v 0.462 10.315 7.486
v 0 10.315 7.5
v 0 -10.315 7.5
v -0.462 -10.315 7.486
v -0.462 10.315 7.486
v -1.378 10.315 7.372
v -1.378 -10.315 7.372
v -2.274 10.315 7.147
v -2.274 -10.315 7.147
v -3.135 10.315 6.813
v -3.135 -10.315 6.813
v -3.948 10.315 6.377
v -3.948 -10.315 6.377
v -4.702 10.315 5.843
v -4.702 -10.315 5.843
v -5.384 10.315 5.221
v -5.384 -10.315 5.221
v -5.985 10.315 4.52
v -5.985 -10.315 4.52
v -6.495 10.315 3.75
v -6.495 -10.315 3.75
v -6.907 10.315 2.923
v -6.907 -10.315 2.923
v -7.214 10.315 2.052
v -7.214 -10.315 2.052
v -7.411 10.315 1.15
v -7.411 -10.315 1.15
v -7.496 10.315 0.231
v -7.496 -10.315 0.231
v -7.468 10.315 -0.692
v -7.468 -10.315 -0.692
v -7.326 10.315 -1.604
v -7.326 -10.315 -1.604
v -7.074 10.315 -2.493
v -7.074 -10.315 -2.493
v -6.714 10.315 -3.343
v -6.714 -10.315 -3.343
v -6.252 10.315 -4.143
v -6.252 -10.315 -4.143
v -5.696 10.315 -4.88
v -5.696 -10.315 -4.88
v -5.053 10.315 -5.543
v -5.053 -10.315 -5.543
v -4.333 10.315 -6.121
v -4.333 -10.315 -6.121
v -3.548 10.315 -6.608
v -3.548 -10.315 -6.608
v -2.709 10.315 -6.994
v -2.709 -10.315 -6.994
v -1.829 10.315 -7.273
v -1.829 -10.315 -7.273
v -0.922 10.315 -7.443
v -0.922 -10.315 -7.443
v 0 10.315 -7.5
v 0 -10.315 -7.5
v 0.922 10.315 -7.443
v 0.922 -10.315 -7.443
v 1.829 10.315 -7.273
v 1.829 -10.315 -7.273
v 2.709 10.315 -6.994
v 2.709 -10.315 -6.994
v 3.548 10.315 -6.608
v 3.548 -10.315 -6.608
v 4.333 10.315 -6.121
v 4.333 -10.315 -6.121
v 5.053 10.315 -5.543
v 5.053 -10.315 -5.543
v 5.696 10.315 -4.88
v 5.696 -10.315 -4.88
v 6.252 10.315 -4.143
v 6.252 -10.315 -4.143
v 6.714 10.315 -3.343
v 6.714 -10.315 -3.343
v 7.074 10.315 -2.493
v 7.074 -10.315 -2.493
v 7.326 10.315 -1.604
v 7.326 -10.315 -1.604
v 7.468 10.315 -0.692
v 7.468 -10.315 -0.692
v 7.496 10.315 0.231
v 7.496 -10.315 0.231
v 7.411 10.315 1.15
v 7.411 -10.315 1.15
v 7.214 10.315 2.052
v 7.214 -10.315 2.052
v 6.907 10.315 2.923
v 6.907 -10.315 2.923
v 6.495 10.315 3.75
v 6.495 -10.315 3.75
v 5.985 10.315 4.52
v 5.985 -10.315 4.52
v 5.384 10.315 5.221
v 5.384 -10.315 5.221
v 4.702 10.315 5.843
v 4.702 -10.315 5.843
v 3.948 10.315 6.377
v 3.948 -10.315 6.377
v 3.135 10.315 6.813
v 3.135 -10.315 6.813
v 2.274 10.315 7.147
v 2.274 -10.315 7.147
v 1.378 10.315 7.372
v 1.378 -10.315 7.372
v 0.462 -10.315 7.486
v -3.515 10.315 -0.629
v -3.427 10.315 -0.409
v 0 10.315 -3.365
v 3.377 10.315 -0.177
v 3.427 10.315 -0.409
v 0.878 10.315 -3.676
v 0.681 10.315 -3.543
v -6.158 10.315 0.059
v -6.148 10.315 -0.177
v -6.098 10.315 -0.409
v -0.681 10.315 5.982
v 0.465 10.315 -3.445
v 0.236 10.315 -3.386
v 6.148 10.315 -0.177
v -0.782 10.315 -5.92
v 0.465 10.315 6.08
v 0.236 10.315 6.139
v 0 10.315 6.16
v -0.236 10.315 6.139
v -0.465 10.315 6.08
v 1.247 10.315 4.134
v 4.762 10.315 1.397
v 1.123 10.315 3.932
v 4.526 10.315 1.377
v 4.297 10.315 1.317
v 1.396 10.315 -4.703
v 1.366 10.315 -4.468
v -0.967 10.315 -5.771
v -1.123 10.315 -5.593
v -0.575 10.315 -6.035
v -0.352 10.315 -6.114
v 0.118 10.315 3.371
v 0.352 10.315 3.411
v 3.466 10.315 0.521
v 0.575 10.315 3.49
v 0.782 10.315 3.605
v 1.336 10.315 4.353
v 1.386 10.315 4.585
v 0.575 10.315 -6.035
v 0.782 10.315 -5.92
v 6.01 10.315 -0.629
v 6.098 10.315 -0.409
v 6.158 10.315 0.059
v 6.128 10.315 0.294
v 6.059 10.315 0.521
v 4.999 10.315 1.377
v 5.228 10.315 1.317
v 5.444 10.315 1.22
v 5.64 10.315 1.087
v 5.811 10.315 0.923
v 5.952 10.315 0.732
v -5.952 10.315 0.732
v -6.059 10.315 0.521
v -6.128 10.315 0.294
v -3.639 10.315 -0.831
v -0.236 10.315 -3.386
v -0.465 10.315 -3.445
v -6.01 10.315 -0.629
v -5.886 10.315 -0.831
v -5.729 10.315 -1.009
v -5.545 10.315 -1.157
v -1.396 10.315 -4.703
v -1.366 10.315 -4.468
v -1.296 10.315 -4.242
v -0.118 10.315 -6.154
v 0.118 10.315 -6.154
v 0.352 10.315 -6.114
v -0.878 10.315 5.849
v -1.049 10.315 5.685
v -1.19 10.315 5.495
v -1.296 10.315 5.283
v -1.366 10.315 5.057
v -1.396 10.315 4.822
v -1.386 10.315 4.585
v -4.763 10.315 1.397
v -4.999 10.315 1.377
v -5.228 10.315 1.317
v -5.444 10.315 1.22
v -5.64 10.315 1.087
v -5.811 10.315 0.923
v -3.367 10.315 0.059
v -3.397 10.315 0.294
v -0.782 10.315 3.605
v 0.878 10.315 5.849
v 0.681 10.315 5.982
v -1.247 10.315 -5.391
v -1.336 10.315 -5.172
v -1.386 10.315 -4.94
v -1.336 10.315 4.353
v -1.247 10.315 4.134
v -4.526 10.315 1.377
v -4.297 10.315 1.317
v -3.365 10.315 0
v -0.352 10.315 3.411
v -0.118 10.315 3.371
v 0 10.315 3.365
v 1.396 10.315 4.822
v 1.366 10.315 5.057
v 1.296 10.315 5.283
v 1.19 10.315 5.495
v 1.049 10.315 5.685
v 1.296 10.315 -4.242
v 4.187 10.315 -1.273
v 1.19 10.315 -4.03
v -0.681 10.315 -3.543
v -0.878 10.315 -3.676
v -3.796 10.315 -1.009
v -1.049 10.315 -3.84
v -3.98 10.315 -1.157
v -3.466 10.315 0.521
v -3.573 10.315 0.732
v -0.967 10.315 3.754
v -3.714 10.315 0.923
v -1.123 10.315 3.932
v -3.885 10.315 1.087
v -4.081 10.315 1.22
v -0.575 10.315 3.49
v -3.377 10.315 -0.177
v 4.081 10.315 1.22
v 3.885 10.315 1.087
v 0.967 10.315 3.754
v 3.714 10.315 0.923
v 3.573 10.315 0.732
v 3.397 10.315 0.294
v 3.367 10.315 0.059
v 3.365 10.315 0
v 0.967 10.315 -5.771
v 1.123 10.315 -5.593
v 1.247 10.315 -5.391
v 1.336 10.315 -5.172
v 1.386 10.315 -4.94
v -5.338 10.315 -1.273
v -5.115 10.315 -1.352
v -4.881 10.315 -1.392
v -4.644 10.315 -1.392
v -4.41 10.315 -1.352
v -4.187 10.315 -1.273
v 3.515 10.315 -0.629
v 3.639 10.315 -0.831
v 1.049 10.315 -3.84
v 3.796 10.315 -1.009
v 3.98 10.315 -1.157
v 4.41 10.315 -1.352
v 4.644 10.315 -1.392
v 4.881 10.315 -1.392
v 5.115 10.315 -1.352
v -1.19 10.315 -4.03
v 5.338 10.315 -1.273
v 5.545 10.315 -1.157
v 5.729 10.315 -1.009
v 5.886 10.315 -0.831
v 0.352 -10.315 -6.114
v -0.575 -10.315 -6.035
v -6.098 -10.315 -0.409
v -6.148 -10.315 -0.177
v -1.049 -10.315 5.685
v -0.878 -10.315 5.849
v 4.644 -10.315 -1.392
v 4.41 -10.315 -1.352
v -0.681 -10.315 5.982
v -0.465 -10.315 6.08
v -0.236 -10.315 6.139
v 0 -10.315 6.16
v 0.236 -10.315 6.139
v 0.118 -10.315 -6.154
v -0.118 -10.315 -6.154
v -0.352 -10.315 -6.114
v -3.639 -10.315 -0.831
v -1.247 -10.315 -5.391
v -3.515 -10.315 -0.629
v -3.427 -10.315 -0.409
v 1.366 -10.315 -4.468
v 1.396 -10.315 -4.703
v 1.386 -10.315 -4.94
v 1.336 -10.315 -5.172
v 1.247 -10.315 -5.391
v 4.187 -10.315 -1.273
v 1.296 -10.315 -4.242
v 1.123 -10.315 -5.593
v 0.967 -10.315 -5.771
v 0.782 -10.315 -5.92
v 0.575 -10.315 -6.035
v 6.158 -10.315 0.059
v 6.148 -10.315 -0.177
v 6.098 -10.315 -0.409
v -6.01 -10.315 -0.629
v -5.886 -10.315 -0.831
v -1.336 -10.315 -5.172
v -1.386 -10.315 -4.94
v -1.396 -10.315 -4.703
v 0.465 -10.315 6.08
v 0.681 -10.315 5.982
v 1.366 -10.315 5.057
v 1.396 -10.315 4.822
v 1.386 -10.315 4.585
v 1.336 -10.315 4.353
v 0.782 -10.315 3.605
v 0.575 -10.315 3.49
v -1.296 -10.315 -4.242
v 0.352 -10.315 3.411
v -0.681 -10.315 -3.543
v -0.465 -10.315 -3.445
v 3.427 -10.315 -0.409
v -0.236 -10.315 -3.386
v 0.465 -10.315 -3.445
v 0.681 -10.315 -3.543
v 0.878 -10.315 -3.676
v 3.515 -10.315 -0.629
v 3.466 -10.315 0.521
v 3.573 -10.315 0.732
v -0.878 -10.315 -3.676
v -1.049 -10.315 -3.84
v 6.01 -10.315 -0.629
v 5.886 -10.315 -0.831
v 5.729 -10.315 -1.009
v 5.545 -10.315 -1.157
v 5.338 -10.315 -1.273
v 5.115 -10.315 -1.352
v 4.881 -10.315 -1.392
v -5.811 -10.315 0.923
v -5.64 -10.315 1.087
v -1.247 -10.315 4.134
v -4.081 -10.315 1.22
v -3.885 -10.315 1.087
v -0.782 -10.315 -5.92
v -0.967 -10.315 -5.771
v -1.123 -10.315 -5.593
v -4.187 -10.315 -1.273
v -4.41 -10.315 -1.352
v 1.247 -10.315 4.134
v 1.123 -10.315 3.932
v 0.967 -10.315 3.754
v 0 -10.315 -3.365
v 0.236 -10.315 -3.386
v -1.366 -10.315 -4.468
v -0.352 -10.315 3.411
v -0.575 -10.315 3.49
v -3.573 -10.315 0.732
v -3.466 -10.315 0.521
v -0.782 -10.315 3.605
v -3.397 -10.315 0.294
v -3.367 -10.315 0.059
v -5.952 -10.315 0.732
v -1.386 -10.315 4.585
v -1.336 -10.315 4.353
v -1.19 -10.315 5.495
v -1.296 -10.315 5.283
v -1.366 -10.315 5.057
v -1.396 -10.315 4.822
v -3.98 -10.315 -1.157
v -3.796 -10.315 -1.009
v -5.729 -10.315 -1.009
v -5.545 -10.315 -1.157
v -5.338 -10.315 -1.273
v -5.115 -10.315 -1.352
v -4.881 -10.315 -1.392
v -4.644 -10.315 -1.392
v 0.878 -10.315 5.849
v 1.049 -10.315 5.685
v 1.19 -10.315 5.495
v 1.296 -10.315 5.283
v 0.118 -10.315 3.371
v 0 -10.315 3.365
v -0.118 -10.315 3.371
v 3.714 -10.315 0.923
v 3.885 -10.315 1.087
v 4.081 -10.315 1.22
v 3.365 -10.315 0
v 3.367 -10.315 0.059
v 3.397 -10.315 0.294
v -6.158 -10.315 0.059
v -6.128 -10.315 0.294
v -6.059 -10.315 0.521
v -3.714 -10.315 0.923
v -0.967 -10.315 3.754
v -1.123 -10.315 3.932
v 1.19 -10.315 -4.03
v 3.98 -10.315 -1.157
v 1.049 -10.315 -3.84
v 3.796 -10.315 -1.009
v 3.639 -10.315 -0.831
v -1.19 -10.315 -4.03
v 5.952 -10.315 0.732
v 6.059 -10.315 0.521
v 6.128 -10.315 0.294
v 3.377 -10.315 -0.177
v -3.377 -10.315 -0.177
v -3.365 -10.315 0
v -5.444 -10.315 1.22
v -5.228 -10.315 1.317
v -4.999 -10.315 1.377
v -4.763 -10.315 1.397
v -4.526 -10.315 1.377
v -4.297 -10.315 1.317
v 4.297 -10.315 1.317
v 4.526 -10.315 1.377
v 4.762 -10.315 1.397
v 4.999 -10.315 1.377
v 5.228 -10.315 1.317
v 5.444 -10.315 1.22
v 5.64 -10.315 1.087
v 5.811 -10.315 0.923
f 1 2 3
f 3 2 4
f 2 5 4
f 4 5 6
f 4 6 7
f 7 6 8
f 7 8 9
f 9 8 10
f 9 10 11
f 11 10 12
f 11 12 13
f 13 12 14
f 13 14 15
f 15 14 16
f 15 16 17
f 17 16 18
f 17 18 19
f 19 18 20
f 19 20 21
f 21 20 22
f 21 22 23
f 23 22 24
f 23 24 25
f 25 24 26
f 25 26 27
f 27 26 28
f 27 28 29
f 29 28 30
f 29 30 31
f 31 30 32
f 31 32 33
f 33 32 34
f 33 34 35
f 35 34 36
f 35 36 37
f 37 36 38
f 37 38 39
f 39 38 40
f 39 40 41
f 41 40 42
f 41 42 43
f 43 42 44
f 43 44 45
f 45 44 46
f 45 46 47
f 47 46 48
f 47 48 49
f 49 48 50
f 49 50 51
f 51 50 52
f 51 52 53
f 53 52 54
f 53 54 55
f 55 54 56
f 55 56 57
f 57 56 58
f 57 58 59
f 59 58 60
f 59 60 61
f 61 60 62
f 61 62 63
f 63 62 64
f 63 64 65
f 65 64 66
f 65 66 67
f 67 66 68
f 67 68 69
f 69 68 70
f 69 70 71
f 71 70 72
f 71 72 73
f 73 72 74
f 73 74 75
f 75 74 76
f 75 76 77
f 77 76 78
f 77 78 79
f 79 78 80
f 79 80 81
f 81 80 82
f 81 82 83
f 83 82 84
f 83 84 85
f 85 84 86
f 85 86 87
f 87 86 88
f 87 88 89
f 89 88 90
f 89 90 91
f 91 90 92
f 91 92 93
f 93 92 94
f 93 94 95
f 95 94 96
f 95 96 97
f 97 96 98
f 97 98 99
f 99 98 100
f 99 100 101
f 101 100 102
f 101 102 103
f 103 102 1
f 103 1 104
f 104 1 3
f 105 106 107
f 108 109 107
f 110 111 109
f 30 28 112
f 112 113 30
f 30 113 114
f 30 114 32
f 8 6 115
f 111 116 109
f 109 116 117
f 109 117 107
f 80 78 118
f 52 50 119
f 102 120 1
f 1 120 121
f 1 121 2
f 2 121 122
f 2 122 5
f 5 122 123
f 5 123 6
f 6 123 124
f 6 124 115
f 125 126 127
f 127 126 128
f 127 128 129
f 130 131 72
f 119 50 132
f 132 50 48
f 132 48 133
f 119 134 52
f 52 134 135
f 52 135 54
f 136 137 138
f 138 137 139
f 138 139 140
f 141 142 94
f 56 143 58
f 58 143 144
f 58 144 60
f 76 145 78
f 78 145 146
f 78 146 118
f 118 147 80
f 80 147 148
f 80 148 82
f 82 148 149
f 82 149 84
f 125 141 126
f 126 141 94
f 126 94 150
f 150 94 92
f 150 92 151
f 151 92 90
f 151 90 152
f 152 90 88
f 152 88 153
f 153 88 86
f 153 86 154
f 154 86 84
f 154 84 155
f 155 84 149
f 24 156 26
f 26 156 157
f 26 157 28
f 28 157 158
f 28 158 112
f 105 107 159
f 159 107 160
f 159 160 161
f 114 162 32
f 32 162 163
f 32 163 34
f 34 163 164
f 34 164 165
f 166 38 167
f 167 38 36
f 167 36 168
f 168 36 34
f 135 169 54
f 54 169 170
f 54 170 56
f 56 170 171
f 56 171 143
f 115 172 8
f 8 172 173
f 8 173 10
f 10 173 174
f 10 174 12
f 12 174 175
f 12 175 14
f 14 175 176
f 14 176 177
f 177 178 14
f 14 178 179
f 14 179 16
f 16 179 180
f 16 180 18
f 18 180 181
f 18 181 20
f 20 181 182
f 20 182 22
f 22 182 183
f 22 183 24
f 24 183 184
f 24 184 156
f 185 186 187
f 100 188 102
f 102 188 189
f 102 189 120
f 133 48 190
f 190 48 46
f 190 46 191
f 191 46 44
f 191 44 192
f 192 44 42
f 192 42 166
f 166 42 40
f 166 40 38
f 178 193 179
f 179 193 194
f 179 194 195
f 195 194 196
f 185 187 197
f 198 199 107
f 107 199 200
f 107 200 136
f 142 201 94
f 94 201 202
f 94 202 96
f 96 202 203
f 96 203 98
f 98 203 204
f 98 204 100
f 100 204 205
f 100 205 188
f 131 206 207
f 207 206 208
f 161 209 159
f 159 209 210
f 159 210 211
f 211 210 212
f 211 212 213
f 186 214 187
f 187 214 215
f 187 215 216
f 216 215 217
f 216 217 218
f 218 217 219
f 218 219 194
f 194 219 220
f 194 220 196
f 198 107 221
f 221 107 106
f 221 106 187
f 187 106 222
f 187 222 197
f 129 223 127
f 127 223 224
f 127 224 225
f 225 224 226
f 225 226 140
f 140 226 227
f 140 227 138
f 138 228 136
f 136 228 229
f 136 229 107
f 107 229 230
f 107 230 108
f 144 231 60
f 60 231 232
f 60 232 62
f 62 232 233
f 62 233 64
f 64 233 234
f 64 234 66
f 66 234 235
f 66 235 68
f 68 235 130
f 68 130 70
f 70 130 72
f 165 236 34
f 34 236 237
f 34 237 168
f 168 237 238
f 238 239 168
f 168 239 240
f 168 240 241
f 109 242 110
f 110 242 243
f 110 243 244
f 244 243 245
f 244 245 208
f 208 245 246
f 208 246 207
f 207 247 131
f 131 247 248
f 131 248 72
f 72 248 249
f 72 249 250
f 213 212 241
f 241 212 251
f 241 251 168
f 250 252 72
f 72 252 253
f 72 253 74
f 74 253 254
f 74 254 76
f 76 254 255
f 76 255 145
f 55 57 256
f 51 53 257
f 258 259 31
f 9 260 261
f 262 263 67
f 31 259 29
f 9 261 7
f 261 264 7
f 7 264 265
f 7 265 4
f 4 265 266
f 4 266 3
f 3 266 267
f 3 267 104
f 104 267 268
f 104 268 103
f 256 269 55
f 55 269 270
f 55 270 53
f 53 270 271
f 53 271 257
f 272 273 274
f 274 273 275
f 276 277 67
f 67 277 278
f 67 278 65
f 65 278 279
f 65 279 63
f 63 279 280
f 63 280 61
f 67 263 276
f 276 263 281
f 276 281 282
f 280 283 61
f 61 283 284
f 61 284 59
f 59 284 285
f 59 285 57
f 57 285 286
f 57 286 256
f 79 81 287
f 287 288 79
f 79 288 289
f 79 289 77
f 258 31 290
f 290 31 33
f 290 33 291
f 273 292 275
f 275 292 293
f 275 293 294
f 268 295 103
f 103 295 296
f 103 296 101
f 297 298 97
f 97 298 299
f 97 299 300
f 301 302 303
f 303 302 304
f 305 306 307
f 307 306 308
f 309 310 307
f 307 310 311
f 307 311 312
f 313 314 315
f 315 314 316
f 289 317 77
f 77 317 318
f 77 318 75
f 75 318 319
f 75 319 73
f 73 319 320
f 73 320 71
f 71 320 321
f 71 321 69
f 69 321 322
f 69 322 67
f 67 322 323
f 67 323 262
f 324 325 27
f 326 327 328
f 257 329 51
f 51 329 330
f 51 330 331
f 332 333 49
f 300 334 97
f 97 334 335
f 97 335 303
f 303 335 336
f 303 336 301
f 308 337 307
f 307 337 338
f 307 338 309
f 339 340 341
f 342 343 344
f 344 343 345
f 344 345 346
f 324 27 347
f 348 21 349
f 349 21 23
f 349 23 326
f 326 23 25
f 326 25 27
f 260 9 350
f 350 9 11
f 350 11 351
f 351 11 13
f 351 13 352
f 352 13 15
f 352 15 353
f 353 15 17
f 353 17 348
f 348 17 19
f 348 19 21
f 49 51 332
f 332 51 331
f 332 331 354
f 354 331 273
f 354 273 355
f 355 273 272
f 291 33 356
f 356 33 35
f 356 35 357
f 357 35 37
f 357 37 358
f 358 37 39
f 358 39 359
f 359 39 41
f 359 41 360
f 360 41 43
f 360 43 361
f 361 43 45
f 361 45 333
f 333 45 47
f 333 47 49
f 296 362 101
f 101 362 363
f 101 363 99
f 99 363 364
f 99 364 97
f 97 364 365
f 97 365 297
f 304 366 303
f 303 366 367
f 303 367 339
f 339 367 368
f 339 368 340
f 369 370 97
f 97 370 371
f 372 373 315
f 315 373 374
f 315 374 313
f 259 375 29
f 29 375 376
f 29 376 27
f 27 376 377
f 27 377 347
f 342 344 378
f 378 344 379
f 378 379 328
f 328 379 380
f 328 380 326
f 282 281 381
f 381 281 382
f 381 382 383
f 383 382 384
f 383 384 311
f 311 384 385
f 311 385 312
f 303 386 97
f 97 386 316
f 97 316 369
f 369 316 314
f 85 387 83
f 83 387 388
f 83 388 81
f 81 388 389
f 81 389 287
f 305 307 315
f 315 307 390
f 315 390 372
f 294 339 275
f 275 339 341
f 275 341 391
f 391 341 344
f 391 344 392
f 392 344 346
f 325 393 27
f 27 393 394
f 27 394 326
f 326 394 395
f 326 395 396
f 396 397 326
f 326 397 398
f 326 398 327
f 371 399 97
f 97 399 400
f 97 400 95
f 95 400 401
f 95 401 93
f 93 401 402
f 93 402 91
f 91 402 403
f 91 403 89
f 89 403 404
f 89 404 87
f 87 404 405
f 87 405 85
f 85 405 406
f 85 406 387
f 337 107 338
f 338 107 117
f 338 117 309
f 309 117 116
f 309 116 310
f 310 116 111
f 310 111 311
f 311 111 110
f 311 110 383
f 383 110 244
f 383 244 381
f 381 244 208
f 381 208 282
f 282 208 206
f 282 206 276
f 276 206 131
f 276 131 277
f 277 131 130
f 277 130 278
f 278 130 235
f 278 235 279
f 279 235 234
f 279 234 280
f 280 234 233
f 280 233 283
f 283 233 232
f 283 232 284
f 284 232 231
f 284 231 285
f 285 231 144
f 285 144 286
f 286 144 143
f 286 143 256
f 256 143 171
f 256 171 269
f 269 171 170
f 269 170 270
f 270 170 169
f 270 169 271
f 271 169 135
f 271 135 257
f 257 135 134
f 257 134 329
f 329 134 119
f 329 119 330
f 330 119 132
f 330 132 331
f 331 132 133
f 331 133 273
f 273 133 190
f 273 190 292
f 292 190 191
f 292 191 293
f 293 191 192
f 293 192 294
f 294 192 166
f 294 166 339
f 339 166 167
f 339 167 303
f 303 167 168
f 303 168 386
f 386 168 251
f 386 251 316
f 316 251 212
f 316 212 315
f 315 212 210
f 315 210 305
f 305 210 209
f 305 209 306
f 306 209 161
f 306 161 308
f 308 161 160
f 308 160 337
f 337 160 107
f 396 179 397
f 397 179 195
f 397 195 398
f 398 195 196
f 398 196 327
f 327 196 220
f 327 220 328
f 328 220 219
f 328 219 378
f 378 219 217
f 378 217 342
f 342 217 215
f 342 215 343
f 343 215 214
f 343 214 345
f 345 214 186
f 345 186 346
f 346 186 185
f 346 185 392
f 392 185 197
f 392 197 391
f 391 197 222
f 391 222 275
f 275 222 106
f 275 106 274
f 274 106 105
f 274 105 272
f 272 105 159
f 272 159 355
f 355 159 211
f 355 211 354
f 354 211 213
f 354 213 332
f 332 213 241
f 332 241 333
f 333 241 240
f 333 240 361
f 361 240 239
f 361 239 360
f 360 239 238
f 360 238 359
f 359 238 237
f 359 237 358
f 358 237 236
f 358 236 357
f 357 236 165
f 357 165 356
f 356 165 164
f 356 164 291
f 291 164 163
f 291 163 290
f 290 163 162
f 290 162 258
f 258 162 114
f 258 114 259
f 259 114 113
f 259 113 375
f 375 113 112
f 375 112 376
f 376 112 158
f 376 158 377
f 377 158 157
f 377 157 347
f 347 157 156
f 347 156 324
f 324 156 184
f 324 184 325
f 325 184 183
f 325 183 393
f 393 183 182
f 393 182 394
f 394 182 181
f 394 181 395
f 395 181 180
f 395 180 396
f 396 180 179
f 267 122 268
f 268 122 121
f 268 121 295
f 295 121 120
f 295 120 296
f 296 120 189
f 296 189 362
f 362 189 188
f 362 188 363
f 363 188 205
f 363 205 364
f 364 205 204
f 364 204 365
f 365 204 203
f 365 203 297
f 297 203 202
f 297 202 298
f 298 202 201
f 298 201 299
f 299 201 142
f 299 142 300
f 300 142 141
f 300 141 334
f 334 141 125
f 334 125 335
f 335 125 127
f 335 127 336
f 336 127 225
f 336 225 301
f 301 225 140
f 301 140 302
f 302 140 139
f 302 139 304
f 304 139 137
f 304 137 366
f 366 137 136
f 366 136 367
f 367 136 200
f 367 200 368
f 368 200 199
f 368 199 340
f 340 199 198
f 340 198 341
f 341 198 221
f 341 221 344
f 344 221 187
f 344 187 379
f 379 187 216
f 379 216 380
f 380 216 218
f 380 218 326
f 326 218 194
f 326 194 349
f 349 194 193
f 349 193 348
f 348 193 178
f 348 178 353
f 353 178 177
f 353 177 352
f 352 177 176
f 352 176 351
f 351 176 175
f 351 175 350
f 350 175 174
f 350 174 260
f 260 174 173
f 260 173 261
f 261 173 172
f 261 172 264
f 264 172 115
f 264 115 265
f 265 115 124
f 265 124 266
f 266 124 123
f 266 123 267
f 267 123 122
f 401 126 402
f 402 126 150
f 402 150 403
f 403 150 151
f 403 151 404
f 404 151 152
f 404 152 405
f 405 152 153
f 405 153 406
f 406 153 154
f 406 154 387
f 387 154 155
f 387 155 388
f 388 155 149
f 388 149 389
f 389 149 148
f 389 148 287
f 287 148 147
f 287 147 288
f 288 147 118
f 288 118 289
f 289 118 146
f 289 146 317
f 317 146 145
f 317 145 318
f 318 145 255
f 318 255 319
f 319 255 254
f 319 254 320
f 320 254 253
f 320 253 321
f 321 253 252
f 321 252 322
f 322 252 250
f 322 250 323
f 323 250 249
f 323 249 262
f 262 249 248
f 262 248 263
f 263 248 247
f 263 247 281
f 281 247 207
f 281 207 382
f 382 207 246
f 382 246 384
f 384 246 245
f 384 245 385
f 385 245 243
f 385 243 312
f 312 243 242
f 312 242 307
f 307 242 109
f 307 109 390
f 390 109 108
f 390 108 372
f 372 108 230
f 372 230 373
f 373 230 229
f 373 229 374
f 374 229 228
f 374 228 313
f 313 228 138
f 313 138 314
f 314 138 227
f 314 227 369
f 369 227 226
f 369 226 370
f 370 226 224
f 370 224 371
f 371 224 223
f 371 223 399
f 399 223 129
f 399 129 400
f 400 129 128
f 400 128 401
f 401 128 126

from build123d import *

# Parameters (mm, degrees)
SKETCH2_R           = 7.5
BOSS_EXTRUDE1_DEPTH = 10.31494
SKETCH3_R           = 1.397
CUT_EXTRUDE1_DEPTH  = 15.795201492
CIRPATTERN1_COUNT   = 4


with BuildPart() as part:
    # Sketch2 → Boss-Extrude1 (new, symmetric)
    with BuildSketch(Plane(origin=(0, 0, 0), x_dir=(1, 0, 0), z_dir=(0, 1, 0))):
        Circle(SKETCH2_R)
    extrude(amount=BOSS_EXTRUDE1_DEPTH, both=True)

    # Sketch3 → Cut-Extrude1 (cut, symmetric)
    with BuildSketch(Plane(origin=(0, 0, 0), x_dir=(1, 0, 0), z_dir=(0, 1, 0))):
        with Locations((0, 4.7625)):
            Circle(SKETCH3_R)
    cut_extrude1 = extrude(amount=CUT_EXTRUDE1_DEPTH, both=True, mode=Mode.SUBTRACT)

    # CirPattern1: Cut-Extrude1 ×4 about axis
    cirpattern1_axis = Axis((0, 11.346434, 0), (0, -1, 0))
    for i in range(1, CIRPATTERN1_COUNT):
        add(cut_extrude1.rotate(cirpattern1_axis, i * 360 / CIRPATTERN1_COUNT), mode=Mode.SUBTRACT)


solid = part.part
